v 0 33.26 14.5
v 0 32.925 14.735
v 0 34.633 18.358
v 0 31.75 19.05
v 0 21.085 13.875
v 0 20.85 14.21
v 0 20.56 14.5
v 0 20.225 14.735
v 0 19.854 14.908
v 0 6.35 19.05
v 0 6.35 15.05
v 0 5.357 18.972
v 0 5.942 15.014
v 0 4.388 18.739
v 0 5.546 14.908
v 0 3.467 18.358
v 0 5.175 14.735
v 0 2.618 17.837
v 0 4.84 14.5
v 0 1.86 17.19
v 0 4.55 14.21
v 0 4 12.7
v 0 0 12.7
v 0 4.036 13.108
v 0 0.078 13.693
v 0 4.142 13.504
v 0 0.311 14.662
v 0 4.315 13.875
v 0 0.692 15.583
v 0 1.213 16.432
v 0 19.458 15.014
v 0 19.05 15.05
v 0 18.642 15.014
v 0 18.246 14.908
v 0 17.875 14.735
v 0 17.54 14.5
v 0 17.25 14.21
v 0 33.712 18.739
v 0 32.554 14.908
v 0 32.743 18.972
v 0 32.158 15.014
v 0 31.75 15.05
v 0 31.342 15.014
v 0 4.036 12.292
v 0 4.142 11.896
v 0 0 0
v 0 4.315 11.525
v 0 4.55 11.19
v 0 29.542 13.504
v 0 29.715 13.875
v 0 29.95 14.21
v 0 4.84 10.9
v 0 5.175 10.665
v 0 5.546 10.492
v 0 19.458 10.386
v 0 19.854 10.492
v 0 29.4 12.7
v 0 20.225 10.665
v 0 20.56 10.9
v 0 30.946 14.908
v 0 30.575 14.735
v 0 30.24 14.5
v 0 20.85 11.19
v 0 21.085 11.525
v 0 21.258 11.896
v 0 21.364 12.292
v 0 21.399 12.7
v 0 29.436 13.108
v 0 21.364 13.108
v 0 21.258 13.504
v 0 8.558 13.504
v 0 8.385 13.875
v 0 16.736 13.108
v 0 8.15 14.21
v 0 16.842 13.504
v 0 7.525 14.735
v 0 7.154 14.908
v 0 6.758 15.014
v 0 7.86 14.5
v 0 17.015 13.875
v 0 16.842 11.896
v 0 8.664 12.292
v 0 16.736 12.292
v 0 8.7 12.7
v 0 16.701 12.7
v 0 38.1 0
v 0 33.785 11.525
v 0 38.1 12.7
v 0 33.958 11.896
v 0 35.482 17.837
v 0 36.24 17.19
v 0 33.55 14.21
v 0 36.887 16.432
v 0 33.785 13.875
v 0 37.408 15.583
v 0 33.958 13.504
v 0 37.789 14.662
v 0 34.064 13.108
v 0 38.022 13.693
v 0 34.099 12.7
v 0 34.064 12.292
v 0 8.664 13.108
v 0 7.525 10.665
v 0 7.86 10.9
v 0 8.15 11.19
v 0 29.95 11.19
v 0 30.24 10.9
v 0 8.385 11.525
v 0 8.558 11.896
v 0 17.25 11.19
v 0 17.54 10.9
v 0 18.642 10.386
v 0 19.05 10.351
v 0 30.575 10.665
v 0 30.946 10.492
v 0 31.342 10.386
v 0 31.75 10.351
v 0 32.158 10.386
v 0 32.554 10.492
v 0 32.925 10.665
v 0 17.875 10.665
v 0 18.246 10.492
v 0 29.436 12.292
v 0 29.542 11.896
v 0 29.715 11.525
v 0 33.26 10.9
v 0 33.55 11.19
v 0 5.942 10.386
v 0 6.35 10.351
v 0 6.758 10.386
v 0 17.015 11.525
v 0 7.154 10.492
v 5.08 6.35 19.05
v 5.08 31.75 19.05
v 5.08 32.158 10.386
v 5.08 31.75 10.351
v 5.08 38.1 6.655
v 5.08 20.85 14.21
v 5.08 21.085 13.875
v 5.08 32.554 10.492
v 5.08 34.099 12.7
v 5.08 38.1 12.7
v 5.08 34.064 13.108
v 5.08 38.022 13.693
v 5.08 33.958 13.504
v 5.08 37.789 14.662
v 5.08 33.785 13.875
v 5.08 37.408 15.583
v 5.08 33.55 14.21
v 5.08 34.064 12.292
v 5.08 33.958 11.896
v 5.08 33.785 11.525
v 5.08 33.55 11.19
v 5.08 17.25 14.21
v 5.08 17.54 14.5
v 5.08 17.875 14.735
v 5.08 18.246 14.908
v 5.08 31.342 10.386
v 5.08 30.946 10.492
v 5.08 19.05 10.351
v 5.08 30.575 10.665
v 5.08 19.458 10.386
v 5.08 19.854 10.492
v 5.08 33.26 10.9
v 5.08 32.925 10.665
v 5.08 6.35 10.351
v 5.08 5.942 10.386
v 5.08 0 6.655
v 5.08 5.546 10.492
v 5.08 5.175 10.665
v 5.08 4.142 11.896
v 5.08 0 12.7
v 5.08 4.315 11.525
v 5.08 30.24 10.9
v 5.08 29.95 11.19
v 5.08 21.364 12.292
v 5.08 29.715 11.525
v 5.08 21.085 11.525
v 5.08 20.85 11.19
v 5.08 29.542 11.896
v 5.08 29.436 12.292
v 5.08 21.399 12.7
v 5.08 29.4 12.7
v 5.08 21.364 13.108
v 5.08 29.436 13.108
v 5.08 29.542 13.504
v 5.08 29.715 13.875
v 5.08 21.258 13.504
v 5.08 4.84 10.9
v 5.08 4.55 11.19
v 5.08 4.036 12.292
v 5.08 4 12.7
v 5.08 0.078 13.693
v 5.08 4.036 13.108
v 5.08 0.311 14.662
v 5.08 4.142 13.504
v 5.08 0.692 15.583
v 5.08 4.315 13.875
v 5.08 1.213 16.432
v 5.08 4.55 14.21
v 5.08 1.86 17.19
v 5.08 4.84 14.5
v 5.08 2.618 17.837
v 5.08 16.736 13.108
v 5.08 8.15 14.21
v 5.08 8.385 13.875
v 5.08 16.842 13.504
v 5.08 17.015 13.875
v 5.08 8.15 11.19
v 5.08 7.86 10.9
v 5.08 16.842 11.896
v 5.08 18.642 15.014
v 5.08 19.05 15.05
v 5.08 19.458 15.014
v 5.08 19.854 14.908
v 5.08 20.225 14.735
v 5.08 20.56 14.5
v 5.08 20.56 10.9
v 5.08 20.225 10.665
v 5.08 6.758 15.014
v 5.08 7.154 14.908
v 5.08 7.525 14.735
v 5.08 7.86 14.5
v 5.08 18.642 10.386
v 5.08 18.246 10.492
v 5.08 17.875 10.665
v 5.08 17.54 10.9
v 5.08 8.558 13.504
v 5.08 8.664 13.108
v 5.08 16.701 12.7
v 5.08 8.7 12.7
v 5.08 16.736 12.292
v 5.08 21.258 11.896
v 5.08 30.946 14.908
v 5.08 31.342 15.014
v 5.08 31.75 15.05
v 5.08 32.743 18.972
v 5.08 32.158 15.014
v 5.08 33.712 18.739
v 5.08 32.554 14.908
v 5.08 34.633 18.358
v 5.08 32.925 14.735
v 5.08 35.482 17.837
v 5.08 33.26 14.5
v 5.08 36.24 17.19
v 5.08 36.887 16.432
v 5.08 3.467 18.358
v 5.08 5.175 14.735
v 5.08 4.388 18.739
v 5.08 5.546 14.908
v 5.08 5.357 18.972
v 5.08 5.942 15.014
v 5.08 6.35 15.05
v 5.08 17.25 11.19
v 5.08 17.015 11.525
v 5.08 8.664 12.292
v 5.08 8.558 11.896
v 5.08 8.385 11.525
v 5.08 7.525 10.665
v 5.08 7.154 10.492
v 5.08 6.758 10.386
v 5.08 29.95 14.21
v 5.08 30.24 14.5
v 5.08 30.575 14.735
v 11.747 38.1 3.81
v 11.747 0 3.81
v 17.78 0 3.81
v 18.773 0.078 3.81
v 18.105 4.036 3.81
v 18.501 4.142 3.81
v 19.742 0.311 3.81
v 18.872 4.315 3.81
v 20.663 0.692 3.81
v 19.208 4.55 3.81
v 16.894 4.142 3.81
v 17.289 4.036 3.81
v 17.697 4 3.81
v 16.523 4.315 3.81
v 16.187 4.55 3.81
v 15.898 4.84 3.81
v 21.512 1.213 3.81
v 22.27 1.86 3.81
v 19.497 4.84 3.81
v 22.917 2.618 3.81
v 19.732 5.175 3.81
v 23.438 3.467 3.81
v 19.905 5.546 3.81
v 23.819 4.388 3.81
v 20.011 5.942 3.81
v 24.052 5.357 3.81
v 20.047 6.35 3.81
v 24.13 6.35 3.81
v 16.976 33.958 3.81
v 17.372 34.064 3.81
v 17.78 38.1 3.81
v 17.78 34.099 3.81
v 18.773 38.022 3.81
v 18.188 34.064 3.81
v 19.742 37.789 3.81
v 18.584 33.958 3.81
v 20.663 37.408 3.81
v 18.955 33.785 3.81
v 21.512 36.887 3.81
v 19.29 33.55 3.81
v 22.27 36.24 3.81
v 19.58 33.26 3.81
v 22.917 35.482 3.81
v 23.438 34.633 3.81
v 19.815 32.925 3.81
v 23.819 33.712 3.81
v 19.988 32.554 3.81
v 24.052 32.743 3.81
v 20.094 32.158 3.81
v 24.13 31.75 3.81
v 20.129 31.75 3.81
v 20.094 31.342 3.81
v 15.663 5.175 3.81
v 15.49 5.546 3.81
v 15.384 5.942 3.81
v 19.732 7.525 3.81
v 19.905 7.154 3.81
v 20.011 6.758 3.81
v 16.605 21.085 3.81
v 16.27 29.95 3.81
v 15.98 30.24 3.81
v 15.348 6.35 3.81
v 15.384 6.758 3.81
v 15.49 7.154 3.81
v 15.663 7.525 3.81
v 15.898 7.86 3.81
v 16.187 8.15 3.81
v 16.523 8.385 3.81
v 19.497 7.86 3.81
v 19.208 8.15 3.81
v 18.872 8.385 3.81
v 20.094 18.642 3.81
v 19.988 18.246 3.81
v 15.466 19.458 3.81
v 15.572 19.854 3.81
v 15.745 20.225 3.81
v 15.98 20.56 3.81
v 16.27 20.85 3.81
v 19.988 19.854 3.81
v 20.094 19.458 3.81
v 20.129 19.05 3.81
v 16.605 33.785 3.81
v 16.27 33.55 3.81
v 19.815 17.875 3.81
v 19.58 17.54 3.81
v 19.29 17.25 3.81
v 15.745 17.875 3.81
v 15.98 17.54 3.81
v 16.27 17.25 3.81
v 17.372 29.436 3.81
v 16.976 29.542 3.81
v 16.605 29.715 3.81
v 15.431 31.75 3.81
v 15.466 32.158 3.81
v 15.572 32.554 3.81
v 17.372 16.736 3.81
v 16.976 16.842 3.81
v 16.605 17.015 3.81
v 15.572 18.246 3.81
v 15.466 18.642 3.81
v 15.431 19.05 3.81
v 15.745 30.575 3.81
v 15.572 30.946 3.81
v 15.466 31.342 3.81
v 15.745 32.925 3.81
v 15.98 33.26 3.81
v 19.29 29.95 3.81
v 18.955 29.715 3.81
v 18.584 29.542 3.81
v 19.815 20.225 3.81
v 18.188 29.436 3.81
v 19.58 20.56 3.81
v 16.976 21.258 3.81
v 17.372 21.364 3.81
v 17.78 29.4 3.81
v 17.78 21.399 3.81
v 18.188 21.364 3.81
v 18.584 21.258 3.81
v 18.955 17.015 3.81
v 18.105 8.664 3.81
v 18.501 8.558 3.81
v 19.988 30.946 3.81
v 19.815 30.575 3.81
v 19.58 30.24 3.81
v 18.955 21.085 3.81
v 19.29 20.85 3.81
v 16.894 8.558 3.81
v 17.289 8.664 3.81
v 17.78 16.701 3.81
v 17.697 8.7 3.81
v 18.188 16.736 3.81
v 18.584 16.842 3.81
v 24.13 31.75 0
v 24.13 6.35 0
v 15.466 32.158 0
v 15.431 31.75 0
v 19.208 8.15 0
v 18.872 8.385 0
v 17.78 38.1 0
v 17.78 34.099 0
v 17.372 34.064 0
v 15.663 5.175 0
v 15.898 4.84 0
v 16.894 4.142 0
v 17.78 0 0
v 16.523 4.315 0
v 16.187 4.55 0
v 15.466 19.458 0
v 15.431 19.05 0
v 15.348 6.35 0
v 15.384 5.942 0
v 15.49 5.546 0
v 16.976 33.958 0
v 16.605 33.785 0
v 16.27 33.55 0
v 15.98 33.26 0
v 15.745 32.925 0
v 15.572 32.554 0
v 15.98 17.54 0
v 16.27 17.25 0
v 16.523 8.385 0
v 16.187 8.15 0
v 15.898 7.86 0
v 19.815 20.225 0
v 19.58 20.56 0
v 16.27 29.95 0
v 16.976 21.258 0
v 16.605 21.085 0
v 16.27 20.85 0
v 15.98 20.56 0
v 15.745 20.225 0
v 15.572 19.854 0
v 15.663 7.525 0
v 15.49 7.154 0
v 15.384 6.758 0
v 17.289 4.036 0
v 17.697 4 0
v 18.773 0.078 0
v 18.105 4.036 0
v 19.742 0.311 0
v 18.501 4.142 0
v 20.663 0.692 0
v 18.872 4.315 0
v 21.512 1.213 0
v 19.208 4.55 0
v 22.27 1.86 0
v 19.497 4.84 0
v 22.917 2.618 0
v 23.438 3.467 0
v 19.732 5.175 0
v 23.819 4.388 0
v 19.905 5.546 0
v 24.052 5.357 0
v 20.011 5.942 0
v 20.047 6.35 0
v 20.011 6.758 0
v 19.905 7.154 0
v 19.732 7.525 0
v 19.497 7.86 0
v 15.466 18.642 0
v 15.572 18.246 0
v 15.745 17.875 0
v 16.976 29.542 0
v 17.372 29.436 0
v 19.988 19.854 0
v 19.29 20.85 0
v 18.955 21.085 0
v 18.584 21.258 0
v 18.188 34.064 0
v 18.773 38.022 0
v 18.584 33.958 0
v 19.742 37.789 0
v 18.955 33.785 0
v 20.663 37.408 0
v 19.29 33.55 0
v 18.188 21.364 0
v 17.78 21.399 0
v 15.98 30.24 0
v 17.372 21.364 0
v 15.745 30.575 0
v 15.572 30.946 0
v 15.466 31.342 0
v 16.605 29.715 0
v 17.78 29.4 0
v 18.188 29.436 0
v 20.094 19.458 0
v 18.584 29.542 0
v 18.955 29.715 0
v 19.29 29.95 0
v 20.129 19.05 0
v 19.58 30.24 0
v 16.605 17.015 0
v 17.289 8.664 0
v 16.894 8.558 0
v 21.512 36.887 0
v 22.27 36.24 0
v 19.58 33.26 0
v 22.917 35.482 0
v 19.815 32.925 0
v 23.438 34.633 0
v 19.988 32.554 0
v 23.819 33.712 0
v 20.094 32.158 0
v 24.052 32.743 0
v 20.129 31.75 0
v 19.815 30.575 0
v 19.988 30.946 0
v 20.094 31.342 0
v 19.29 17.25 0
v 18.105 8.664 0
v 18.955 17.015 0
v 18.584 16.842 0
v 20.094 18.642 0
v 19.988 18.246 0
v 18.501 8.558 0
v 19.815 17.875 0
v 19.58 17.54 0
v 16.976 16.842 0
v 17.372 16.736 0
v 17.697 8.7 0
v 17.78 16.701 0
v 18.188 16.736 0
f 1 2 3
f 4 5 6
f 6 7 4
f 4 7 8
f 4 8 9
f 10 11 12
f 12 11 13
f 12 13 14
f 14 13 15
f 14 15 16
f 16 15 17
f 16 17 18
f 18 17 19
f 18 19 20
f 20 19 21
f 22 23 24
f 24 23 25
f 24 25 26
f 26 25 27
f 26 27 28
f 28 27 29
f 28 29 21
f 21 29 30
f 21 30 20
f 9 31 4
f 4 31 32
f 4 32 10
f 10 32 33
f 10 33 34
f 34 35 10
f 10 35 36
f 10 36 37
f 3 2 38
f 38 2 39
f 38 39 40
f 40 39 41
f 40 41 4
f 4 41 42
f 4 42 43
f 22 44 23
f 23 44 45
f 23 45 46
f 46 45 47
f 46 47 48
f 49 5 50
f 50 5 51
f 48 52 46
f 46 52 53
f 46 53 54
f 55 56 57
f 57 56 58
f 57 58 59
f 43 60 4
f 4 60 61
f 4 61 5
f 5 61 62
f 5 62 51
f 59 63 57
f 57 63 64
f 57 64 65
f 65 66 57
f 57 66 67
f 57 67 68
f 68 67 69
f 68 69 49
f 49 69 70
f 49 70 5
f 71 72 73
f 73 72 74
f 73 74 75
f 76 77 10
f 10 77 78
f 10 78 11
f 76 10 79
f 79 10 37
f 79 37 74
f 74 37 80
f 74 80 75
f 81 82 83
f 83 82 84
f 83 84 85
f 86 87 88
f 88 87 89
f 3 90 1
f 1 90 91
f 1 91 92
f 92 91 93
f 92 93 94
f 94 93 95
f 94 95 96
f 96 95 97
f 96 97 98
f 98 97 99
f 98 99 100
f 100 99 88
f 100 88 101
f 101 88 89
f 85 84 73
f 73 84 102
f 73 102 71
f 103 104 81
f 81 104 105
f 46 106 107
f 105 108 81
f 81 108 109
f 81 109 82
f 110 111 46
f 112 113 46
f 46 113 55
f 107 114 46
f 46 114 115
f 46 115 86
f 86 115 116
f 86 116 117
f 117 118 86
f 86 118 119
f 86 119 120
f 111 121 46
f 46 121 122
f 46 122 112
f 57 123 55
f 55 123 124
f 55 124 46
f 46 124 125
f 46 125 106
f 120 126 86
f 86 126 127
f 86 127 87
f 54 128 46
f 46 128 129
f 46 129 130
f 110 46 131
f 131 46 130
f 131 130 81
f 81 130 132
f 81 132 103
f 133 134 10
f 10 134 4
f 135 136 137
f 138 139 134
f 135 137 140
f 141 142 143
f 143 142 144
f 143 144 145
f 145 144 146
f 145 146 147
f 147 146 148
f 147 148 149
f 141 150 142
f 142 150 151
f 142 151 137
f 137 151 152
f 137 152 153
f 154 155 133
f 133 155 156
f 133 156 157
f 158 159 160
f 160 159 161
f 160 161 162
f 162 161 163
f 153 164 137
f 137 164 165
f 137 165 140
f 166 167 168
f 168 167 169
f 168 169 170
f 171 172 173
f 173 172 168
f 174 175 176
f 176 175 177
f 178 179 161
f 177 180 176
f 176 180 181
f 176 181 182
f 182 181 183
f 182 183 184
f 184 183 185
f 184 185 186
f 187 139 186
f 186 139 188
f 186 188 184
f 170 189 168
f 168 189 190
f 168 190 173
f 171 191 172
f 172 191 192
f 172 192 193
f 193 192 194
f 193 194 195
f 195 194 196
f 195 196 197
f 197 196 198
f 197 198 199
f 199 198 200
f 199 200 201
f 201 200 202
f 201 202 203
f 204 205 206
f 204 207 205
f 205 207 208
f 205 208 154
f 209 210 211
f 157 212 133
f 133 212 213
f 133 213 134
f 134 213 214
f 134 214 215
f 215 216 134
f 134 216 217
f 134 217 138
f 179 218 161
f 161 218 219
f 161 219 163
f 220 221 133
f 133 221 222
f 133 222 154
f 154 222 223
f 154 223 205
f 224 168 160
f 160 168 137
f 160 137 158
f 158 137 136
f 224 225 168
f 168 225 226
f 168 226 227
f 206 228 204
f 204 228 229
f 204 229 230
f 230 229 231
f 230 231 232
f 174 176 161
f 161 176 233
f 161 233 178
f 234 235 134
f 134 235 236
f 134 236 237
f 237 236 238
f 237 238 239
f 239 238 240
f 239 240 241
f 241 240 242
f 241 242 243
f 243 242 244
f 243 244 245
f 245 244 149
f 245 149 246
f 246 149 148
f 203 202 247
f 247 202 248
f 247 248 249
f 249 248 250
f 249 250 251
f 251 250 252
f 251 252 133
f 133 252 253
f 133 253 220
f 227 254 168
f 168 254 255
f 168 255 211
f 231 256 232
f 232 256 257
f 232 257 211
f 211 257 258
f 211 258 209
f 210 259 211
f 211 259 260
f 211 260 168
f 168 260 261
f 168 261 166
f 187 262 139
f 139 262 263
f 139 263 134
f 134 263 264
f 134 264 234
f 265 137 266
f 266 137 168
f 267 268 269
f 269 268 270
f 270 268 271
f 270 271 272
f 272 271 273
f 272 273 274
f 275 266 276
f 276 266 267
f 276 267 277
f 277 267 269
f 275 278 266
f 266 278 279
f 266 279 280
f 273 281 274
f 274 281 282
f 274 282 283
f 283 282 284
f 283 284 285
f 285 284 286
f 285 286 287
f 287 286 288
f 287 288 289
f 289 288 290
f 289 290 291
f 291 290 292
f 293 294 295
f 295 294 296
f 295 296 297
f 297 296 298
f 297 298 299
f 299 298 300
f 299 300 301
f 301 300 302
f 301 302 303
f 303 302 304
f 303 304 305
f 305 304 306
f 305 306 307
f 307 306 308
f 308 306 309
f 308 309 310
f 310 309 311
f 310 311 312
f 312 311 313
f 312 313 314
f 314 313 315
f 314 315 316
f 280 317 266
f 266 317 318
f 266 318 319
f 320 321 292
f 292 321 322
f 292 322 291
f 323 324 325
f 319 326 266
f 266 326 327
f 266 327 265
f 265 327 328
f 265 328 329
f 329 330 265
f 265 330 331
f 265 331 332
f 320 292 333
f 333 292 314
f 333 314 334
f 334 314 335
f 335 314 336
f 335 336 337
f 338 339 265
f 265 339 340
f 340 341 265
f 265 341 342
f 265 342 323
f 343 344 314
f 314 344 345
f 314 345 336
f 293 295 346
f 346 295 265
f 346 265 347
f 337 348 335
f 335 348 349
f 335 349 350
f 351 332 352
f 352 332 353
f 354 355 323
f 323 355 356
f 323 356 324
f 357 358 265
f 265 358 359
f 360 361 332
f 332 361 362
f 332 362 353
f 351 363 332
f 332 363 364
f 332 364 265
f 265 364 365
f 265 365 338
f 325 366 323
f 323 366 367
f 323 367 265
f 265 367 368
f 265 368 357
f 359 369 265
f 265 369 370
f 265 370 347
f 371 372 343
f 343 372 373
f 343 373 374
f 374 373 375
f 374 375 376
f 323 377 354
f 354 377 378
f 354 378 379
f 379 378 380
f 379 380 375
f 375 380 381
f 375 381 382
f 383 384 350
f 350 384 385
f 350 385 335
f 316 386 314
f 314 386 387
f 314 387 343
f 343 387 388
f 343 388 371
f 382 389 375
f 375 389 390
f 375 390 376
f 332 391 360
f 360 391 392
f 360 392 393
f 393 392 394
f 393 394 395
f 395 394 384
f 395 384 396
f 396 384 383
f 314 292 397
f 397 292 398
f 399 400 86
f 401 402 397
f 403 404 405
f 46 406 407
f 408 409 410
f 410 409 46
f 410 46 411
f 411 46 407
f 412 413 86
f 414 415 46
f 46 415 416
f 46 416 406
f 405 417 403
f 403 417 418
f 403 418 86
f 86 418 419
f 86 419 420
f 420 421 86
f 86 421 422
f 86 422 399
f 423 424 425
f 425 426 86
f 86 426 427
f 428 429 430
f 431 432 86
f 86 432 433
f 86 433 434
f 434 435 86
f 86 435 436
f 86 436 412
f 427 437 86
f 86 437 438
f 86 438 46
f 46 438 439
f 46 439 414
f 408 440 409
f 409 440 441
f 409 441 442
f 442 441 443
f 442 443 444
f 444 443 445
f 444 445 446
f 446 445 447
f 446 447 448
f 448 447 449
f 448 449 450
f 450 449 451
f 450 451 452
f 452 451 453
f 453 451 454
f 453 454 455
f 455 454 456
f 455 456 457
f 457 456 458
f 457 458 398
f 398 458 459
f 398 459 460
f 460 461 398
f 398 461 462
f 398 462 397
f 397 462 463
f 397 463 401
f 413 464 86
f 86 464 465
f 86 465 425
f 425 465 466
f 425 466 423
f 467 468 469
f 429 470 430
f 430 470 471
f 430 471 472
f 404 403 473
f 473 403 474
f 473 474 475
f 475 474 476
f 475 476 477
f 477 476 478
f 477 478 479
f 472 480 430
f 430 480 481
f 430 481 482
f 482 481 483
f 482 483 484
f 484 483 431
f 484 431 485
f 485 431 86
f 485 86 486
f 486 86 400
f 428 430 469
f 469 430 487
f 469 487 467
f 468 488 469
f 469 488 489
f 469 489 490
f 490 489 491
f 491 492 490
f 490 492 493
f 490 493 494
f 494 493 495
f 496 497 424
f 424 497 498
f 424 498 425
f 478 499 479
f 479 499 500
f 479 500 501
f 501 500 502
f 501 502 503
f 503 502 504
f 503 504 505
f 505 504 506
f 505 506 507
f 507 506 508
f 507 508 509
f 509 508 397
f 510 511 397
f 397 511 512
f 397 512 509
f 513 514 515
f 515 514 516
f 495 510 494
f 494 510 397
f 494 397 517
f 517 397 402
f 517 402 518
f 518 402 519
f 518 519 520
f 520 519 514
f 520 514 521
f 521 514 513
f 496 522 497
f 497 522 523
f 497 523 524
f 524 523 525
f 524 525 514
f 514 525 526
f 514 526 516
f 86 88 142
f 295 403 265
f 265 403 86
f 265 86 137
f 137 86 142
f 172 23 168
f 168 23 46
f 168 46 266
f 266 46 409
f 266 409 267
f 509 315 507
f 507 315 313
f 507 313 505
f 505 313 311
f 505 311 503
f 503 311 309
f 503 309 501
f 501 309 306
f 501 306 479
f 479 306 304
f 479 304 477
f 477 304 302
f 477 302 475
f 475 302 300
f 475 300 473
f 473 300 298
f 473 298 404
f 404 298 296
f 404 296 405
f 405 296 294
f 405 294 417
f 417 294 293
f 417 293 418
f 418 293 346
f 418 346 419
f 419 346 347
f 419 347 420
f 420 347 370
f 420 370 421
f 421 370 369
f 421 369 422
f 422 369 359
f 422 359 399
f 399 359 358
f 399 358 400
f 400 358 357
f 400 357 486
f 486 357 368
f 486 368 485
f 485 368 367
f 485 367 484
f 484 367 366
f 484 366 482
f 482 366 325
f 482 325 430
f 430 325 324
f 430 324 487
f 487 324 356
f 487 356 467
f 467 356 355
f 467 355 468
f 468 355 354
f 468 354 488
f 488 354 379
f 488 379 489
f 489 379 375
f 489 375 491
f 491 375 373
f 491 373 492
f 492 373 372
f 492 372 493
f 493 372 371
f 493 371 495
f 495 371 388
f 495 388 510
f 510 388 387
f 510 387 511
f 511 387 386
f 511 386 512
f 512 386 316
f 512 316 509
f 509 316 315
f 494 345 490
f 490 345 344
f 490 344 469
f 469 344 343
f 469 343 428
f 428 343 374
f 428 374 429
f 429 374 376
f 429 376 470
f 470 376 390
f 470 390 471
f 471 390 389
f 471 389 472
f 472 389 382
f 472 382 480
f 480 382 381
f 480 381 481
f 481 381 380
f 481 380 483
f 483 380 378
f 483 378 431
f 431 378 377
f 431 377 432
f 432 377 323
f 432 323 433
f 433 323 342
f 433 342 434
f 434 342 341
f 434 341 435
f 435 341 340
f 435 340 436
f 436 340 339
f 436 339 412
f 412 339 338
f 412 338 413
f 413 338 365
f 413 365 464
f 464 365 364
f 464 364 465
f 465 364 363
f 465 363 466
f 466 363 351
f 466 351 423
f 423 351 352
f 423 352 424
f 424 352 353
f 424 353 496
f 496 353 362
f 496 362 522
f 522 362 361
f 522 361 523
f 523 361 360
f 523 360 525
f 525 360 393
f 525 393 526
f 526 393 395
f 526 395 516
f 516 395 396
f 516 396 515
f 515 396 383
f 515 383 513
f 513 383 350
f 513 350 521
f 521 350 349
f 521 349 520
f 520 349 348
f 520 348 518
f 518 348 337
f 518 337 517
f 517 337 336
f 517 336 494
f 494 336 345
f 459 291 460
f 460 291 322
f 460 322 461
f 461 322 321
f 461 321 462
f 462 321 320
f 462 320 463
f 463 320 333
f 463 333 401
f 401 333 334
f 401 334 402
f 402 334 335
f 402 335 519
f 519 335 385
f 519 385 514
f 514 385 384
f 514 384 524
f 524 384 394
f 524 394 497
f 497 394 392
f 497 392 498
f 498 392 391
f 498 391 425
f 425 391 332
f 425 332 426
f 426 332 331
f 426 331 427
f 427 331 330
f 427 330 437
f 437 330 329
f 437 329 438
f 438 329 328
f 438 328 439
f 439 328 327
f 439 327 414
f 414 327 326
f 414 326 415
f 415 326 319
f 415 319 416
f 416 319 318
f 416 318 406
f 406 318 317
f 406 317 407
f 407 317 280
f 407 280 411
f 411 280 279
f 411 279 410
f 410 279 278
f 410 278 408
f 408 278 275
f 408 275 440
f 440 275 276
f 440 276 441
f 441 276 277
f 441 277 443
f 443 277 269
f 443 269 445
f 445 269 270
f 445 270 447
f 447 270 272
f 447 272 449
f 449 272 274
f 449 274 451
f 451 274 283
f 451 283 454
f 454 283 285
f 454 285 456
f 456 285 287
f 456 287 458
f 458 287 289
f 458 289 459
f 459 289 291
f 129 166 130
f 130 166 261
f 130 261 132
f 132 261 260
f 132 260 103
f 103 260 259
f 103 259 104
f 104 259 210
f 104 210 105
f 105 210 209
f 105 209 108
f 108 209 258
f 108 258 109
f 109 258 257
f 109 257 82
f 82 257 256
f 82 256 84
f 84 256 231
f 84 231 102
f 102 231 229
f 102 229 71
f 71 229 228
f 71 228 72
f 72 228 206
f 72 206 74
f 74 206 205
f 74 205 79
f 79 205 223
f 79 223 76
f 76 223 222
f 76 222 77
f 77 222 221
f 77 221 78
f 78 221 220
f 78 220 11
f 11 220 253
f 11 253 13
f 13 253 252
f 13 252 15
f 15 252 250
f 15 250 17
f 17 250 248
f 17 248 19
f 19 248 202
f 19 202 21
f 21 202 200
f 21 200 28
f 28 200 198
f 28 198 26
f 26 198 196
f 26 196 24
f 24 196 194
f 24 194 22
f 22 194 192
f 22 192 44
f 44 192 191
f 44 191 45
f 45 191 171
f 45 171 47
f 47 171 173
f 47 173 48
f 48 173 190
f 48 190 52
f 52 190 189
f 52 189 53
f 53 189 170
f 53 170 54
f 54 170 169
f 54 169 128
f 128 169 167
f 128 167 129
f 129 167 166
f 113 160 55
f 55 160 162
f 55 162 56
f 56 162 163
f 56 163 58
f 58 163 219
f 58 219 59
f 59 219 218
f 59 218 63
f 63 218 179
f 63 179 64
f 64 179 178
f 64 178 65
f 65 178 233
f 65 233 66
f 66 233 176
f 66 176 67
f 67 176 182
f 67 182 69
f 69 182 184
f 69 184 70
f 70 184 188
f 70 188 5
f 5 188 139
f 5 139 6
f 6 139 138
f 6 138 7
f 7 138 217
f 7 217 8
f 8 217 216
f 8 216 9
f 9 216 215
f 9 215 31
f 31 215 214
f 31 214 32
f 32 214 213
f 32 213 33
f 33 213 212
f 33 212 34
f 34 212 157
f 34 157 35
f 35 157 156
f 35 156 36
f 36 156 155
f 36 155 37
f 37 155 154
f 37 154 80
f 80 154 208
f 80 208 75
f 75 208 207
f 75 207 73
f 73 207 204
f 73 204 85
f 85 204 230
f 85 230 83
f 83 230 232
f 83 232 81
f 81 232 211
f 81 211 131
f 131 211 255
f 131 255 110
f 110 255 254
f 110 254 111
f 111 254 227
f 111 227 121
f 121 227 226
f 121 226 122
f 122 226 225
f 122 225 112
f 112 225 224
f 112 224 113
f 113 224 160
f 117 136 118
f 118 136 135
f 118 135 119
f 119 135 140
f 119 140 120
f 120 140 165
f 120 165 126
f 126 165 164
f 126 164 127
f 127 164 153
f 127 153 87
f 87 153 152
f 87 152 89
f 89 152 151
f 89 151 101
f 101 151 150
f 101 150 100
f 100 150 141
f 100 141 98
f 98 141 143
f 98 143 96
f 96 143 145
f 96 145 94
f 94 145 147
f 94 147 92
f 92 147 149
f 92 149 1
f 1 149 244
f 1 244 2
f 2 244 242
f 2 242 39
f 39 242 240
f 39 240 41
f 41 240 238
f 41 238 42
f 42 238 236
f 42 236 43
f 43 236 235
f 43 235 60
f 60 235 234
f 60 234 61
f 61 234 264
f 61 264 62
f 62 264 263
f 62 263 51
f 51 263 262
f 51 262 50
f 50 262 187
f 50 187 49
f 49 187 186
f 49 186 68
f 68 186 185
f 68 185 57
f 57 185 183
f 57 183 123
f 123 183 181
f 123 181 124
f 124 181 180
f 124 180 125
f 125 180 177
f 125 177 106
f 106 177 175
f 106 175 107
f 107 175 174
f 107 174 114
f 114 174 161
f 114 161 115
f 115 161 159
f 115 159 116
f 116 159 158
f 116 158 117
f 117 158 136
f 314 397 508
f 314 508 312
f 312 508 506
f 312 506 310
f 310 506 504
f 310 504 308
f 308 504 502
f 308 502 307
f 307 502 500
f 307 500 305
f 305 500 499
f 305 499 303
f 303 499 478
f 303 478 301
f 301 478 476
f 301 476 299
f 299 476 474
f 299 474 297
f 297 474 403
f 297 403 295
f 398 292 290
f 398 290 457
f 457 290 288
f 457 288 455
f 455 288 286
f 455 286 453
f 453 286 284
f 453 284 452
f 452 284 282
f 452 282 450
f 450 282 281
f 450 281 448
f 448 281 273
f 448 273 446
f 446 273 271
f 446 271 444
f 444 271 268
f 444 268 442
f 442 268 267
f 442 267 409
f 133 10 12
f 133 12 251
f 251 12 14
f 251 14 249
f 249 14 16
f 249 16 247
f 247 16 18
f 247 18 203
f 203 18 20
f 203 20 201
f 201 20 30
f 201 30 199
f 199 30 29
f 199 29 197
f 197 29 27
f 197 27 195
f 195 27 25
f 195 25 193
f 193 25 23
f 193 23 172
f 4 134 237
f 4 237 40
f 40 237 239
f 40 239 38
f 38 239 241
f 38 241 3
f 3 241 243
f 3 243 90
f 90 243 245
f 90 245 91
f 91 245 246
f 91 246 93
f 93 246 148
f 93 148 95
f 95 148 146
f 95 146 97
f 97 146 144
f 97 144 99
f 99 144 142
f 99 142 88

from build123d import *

# Parameters (mm, degrees)
BASE_EXTRUDE_DEPTH      = 38.1
SKETCH2_R               = 2.3495
MOTOR_HOLE_CUT_DEPTH    = 48.603828628
SKETCH3_R               = 2.3495
MOUNTING_HOLE_CUT_DEPTH = 47.6627796
CORNER_FILLETS_R        = 6.35


with BuildPart() as part:
    # Sketch1 → Base Extrude (new body)
    with BuildSketch(Plane(origin=(0, 0, 0), x_dir=(1, 0, 0), z_dir=(0, 1, 0))):
        Polygon((0, 0), (24.13, 0), (24.13, -3.81), (11.7475, -3.81), (5.08, -6.6548), (5.08, -19.05), (0, -19.05), align=None)
    extrude(amount=BASE_EXTRUDE_DEPTH)

    # Sketch2 → Motor Hole Cut (cut, through all)
    with BuildSketch(Plane.XY.offset(3.81)):
        with Locations((17.697323232, 6.35)):
            Circle(SKETCH2_R)
        with Locations((17.78, 19.05)):
            Circle(SKETCH2_R)
        with Locations((17.78, 31.75)):
            Circle(SKETCH2_R)
    extrude(amount=-MOTOR_HOLE_CUT_DEPTH, mode=Mode.SUBTRACT)

    # Sketch3 → Mounting Hole Cut (cut, through all)
    with BuildSketch(Plane(origin=(5.08, 0, 0), x_dir=(0, 0, -1), z_dir=(1, 0, 0))):
        with Locations((-12.7, 31.75)):
            Circle(SKETCH3_R)
        with Locations((-12.7, 19.05)):
            Circle(SKETCH3_R)
        with Locations((-12.7, 6.35)):
            Circle(SKETCH3_R)
    extrude(amount=-MOUNTING_HOLE_CUT_DEPTH, mode=Mode.SUBTRACT)

    # Corner Fillets
    corner_fillets_edges = [part.edges().sort_by_distance(p)[0] for p in [
        (24.13, 38.1, 1.905),
        (24.13, 0, 1.905),
        (2.54, 38.1, 19.05),
        (2.54, 0, 19.05),
    ]]
    fillet(corner_fillets_edges, radius=CORNER_FILLETS_R)


solid = part.part
